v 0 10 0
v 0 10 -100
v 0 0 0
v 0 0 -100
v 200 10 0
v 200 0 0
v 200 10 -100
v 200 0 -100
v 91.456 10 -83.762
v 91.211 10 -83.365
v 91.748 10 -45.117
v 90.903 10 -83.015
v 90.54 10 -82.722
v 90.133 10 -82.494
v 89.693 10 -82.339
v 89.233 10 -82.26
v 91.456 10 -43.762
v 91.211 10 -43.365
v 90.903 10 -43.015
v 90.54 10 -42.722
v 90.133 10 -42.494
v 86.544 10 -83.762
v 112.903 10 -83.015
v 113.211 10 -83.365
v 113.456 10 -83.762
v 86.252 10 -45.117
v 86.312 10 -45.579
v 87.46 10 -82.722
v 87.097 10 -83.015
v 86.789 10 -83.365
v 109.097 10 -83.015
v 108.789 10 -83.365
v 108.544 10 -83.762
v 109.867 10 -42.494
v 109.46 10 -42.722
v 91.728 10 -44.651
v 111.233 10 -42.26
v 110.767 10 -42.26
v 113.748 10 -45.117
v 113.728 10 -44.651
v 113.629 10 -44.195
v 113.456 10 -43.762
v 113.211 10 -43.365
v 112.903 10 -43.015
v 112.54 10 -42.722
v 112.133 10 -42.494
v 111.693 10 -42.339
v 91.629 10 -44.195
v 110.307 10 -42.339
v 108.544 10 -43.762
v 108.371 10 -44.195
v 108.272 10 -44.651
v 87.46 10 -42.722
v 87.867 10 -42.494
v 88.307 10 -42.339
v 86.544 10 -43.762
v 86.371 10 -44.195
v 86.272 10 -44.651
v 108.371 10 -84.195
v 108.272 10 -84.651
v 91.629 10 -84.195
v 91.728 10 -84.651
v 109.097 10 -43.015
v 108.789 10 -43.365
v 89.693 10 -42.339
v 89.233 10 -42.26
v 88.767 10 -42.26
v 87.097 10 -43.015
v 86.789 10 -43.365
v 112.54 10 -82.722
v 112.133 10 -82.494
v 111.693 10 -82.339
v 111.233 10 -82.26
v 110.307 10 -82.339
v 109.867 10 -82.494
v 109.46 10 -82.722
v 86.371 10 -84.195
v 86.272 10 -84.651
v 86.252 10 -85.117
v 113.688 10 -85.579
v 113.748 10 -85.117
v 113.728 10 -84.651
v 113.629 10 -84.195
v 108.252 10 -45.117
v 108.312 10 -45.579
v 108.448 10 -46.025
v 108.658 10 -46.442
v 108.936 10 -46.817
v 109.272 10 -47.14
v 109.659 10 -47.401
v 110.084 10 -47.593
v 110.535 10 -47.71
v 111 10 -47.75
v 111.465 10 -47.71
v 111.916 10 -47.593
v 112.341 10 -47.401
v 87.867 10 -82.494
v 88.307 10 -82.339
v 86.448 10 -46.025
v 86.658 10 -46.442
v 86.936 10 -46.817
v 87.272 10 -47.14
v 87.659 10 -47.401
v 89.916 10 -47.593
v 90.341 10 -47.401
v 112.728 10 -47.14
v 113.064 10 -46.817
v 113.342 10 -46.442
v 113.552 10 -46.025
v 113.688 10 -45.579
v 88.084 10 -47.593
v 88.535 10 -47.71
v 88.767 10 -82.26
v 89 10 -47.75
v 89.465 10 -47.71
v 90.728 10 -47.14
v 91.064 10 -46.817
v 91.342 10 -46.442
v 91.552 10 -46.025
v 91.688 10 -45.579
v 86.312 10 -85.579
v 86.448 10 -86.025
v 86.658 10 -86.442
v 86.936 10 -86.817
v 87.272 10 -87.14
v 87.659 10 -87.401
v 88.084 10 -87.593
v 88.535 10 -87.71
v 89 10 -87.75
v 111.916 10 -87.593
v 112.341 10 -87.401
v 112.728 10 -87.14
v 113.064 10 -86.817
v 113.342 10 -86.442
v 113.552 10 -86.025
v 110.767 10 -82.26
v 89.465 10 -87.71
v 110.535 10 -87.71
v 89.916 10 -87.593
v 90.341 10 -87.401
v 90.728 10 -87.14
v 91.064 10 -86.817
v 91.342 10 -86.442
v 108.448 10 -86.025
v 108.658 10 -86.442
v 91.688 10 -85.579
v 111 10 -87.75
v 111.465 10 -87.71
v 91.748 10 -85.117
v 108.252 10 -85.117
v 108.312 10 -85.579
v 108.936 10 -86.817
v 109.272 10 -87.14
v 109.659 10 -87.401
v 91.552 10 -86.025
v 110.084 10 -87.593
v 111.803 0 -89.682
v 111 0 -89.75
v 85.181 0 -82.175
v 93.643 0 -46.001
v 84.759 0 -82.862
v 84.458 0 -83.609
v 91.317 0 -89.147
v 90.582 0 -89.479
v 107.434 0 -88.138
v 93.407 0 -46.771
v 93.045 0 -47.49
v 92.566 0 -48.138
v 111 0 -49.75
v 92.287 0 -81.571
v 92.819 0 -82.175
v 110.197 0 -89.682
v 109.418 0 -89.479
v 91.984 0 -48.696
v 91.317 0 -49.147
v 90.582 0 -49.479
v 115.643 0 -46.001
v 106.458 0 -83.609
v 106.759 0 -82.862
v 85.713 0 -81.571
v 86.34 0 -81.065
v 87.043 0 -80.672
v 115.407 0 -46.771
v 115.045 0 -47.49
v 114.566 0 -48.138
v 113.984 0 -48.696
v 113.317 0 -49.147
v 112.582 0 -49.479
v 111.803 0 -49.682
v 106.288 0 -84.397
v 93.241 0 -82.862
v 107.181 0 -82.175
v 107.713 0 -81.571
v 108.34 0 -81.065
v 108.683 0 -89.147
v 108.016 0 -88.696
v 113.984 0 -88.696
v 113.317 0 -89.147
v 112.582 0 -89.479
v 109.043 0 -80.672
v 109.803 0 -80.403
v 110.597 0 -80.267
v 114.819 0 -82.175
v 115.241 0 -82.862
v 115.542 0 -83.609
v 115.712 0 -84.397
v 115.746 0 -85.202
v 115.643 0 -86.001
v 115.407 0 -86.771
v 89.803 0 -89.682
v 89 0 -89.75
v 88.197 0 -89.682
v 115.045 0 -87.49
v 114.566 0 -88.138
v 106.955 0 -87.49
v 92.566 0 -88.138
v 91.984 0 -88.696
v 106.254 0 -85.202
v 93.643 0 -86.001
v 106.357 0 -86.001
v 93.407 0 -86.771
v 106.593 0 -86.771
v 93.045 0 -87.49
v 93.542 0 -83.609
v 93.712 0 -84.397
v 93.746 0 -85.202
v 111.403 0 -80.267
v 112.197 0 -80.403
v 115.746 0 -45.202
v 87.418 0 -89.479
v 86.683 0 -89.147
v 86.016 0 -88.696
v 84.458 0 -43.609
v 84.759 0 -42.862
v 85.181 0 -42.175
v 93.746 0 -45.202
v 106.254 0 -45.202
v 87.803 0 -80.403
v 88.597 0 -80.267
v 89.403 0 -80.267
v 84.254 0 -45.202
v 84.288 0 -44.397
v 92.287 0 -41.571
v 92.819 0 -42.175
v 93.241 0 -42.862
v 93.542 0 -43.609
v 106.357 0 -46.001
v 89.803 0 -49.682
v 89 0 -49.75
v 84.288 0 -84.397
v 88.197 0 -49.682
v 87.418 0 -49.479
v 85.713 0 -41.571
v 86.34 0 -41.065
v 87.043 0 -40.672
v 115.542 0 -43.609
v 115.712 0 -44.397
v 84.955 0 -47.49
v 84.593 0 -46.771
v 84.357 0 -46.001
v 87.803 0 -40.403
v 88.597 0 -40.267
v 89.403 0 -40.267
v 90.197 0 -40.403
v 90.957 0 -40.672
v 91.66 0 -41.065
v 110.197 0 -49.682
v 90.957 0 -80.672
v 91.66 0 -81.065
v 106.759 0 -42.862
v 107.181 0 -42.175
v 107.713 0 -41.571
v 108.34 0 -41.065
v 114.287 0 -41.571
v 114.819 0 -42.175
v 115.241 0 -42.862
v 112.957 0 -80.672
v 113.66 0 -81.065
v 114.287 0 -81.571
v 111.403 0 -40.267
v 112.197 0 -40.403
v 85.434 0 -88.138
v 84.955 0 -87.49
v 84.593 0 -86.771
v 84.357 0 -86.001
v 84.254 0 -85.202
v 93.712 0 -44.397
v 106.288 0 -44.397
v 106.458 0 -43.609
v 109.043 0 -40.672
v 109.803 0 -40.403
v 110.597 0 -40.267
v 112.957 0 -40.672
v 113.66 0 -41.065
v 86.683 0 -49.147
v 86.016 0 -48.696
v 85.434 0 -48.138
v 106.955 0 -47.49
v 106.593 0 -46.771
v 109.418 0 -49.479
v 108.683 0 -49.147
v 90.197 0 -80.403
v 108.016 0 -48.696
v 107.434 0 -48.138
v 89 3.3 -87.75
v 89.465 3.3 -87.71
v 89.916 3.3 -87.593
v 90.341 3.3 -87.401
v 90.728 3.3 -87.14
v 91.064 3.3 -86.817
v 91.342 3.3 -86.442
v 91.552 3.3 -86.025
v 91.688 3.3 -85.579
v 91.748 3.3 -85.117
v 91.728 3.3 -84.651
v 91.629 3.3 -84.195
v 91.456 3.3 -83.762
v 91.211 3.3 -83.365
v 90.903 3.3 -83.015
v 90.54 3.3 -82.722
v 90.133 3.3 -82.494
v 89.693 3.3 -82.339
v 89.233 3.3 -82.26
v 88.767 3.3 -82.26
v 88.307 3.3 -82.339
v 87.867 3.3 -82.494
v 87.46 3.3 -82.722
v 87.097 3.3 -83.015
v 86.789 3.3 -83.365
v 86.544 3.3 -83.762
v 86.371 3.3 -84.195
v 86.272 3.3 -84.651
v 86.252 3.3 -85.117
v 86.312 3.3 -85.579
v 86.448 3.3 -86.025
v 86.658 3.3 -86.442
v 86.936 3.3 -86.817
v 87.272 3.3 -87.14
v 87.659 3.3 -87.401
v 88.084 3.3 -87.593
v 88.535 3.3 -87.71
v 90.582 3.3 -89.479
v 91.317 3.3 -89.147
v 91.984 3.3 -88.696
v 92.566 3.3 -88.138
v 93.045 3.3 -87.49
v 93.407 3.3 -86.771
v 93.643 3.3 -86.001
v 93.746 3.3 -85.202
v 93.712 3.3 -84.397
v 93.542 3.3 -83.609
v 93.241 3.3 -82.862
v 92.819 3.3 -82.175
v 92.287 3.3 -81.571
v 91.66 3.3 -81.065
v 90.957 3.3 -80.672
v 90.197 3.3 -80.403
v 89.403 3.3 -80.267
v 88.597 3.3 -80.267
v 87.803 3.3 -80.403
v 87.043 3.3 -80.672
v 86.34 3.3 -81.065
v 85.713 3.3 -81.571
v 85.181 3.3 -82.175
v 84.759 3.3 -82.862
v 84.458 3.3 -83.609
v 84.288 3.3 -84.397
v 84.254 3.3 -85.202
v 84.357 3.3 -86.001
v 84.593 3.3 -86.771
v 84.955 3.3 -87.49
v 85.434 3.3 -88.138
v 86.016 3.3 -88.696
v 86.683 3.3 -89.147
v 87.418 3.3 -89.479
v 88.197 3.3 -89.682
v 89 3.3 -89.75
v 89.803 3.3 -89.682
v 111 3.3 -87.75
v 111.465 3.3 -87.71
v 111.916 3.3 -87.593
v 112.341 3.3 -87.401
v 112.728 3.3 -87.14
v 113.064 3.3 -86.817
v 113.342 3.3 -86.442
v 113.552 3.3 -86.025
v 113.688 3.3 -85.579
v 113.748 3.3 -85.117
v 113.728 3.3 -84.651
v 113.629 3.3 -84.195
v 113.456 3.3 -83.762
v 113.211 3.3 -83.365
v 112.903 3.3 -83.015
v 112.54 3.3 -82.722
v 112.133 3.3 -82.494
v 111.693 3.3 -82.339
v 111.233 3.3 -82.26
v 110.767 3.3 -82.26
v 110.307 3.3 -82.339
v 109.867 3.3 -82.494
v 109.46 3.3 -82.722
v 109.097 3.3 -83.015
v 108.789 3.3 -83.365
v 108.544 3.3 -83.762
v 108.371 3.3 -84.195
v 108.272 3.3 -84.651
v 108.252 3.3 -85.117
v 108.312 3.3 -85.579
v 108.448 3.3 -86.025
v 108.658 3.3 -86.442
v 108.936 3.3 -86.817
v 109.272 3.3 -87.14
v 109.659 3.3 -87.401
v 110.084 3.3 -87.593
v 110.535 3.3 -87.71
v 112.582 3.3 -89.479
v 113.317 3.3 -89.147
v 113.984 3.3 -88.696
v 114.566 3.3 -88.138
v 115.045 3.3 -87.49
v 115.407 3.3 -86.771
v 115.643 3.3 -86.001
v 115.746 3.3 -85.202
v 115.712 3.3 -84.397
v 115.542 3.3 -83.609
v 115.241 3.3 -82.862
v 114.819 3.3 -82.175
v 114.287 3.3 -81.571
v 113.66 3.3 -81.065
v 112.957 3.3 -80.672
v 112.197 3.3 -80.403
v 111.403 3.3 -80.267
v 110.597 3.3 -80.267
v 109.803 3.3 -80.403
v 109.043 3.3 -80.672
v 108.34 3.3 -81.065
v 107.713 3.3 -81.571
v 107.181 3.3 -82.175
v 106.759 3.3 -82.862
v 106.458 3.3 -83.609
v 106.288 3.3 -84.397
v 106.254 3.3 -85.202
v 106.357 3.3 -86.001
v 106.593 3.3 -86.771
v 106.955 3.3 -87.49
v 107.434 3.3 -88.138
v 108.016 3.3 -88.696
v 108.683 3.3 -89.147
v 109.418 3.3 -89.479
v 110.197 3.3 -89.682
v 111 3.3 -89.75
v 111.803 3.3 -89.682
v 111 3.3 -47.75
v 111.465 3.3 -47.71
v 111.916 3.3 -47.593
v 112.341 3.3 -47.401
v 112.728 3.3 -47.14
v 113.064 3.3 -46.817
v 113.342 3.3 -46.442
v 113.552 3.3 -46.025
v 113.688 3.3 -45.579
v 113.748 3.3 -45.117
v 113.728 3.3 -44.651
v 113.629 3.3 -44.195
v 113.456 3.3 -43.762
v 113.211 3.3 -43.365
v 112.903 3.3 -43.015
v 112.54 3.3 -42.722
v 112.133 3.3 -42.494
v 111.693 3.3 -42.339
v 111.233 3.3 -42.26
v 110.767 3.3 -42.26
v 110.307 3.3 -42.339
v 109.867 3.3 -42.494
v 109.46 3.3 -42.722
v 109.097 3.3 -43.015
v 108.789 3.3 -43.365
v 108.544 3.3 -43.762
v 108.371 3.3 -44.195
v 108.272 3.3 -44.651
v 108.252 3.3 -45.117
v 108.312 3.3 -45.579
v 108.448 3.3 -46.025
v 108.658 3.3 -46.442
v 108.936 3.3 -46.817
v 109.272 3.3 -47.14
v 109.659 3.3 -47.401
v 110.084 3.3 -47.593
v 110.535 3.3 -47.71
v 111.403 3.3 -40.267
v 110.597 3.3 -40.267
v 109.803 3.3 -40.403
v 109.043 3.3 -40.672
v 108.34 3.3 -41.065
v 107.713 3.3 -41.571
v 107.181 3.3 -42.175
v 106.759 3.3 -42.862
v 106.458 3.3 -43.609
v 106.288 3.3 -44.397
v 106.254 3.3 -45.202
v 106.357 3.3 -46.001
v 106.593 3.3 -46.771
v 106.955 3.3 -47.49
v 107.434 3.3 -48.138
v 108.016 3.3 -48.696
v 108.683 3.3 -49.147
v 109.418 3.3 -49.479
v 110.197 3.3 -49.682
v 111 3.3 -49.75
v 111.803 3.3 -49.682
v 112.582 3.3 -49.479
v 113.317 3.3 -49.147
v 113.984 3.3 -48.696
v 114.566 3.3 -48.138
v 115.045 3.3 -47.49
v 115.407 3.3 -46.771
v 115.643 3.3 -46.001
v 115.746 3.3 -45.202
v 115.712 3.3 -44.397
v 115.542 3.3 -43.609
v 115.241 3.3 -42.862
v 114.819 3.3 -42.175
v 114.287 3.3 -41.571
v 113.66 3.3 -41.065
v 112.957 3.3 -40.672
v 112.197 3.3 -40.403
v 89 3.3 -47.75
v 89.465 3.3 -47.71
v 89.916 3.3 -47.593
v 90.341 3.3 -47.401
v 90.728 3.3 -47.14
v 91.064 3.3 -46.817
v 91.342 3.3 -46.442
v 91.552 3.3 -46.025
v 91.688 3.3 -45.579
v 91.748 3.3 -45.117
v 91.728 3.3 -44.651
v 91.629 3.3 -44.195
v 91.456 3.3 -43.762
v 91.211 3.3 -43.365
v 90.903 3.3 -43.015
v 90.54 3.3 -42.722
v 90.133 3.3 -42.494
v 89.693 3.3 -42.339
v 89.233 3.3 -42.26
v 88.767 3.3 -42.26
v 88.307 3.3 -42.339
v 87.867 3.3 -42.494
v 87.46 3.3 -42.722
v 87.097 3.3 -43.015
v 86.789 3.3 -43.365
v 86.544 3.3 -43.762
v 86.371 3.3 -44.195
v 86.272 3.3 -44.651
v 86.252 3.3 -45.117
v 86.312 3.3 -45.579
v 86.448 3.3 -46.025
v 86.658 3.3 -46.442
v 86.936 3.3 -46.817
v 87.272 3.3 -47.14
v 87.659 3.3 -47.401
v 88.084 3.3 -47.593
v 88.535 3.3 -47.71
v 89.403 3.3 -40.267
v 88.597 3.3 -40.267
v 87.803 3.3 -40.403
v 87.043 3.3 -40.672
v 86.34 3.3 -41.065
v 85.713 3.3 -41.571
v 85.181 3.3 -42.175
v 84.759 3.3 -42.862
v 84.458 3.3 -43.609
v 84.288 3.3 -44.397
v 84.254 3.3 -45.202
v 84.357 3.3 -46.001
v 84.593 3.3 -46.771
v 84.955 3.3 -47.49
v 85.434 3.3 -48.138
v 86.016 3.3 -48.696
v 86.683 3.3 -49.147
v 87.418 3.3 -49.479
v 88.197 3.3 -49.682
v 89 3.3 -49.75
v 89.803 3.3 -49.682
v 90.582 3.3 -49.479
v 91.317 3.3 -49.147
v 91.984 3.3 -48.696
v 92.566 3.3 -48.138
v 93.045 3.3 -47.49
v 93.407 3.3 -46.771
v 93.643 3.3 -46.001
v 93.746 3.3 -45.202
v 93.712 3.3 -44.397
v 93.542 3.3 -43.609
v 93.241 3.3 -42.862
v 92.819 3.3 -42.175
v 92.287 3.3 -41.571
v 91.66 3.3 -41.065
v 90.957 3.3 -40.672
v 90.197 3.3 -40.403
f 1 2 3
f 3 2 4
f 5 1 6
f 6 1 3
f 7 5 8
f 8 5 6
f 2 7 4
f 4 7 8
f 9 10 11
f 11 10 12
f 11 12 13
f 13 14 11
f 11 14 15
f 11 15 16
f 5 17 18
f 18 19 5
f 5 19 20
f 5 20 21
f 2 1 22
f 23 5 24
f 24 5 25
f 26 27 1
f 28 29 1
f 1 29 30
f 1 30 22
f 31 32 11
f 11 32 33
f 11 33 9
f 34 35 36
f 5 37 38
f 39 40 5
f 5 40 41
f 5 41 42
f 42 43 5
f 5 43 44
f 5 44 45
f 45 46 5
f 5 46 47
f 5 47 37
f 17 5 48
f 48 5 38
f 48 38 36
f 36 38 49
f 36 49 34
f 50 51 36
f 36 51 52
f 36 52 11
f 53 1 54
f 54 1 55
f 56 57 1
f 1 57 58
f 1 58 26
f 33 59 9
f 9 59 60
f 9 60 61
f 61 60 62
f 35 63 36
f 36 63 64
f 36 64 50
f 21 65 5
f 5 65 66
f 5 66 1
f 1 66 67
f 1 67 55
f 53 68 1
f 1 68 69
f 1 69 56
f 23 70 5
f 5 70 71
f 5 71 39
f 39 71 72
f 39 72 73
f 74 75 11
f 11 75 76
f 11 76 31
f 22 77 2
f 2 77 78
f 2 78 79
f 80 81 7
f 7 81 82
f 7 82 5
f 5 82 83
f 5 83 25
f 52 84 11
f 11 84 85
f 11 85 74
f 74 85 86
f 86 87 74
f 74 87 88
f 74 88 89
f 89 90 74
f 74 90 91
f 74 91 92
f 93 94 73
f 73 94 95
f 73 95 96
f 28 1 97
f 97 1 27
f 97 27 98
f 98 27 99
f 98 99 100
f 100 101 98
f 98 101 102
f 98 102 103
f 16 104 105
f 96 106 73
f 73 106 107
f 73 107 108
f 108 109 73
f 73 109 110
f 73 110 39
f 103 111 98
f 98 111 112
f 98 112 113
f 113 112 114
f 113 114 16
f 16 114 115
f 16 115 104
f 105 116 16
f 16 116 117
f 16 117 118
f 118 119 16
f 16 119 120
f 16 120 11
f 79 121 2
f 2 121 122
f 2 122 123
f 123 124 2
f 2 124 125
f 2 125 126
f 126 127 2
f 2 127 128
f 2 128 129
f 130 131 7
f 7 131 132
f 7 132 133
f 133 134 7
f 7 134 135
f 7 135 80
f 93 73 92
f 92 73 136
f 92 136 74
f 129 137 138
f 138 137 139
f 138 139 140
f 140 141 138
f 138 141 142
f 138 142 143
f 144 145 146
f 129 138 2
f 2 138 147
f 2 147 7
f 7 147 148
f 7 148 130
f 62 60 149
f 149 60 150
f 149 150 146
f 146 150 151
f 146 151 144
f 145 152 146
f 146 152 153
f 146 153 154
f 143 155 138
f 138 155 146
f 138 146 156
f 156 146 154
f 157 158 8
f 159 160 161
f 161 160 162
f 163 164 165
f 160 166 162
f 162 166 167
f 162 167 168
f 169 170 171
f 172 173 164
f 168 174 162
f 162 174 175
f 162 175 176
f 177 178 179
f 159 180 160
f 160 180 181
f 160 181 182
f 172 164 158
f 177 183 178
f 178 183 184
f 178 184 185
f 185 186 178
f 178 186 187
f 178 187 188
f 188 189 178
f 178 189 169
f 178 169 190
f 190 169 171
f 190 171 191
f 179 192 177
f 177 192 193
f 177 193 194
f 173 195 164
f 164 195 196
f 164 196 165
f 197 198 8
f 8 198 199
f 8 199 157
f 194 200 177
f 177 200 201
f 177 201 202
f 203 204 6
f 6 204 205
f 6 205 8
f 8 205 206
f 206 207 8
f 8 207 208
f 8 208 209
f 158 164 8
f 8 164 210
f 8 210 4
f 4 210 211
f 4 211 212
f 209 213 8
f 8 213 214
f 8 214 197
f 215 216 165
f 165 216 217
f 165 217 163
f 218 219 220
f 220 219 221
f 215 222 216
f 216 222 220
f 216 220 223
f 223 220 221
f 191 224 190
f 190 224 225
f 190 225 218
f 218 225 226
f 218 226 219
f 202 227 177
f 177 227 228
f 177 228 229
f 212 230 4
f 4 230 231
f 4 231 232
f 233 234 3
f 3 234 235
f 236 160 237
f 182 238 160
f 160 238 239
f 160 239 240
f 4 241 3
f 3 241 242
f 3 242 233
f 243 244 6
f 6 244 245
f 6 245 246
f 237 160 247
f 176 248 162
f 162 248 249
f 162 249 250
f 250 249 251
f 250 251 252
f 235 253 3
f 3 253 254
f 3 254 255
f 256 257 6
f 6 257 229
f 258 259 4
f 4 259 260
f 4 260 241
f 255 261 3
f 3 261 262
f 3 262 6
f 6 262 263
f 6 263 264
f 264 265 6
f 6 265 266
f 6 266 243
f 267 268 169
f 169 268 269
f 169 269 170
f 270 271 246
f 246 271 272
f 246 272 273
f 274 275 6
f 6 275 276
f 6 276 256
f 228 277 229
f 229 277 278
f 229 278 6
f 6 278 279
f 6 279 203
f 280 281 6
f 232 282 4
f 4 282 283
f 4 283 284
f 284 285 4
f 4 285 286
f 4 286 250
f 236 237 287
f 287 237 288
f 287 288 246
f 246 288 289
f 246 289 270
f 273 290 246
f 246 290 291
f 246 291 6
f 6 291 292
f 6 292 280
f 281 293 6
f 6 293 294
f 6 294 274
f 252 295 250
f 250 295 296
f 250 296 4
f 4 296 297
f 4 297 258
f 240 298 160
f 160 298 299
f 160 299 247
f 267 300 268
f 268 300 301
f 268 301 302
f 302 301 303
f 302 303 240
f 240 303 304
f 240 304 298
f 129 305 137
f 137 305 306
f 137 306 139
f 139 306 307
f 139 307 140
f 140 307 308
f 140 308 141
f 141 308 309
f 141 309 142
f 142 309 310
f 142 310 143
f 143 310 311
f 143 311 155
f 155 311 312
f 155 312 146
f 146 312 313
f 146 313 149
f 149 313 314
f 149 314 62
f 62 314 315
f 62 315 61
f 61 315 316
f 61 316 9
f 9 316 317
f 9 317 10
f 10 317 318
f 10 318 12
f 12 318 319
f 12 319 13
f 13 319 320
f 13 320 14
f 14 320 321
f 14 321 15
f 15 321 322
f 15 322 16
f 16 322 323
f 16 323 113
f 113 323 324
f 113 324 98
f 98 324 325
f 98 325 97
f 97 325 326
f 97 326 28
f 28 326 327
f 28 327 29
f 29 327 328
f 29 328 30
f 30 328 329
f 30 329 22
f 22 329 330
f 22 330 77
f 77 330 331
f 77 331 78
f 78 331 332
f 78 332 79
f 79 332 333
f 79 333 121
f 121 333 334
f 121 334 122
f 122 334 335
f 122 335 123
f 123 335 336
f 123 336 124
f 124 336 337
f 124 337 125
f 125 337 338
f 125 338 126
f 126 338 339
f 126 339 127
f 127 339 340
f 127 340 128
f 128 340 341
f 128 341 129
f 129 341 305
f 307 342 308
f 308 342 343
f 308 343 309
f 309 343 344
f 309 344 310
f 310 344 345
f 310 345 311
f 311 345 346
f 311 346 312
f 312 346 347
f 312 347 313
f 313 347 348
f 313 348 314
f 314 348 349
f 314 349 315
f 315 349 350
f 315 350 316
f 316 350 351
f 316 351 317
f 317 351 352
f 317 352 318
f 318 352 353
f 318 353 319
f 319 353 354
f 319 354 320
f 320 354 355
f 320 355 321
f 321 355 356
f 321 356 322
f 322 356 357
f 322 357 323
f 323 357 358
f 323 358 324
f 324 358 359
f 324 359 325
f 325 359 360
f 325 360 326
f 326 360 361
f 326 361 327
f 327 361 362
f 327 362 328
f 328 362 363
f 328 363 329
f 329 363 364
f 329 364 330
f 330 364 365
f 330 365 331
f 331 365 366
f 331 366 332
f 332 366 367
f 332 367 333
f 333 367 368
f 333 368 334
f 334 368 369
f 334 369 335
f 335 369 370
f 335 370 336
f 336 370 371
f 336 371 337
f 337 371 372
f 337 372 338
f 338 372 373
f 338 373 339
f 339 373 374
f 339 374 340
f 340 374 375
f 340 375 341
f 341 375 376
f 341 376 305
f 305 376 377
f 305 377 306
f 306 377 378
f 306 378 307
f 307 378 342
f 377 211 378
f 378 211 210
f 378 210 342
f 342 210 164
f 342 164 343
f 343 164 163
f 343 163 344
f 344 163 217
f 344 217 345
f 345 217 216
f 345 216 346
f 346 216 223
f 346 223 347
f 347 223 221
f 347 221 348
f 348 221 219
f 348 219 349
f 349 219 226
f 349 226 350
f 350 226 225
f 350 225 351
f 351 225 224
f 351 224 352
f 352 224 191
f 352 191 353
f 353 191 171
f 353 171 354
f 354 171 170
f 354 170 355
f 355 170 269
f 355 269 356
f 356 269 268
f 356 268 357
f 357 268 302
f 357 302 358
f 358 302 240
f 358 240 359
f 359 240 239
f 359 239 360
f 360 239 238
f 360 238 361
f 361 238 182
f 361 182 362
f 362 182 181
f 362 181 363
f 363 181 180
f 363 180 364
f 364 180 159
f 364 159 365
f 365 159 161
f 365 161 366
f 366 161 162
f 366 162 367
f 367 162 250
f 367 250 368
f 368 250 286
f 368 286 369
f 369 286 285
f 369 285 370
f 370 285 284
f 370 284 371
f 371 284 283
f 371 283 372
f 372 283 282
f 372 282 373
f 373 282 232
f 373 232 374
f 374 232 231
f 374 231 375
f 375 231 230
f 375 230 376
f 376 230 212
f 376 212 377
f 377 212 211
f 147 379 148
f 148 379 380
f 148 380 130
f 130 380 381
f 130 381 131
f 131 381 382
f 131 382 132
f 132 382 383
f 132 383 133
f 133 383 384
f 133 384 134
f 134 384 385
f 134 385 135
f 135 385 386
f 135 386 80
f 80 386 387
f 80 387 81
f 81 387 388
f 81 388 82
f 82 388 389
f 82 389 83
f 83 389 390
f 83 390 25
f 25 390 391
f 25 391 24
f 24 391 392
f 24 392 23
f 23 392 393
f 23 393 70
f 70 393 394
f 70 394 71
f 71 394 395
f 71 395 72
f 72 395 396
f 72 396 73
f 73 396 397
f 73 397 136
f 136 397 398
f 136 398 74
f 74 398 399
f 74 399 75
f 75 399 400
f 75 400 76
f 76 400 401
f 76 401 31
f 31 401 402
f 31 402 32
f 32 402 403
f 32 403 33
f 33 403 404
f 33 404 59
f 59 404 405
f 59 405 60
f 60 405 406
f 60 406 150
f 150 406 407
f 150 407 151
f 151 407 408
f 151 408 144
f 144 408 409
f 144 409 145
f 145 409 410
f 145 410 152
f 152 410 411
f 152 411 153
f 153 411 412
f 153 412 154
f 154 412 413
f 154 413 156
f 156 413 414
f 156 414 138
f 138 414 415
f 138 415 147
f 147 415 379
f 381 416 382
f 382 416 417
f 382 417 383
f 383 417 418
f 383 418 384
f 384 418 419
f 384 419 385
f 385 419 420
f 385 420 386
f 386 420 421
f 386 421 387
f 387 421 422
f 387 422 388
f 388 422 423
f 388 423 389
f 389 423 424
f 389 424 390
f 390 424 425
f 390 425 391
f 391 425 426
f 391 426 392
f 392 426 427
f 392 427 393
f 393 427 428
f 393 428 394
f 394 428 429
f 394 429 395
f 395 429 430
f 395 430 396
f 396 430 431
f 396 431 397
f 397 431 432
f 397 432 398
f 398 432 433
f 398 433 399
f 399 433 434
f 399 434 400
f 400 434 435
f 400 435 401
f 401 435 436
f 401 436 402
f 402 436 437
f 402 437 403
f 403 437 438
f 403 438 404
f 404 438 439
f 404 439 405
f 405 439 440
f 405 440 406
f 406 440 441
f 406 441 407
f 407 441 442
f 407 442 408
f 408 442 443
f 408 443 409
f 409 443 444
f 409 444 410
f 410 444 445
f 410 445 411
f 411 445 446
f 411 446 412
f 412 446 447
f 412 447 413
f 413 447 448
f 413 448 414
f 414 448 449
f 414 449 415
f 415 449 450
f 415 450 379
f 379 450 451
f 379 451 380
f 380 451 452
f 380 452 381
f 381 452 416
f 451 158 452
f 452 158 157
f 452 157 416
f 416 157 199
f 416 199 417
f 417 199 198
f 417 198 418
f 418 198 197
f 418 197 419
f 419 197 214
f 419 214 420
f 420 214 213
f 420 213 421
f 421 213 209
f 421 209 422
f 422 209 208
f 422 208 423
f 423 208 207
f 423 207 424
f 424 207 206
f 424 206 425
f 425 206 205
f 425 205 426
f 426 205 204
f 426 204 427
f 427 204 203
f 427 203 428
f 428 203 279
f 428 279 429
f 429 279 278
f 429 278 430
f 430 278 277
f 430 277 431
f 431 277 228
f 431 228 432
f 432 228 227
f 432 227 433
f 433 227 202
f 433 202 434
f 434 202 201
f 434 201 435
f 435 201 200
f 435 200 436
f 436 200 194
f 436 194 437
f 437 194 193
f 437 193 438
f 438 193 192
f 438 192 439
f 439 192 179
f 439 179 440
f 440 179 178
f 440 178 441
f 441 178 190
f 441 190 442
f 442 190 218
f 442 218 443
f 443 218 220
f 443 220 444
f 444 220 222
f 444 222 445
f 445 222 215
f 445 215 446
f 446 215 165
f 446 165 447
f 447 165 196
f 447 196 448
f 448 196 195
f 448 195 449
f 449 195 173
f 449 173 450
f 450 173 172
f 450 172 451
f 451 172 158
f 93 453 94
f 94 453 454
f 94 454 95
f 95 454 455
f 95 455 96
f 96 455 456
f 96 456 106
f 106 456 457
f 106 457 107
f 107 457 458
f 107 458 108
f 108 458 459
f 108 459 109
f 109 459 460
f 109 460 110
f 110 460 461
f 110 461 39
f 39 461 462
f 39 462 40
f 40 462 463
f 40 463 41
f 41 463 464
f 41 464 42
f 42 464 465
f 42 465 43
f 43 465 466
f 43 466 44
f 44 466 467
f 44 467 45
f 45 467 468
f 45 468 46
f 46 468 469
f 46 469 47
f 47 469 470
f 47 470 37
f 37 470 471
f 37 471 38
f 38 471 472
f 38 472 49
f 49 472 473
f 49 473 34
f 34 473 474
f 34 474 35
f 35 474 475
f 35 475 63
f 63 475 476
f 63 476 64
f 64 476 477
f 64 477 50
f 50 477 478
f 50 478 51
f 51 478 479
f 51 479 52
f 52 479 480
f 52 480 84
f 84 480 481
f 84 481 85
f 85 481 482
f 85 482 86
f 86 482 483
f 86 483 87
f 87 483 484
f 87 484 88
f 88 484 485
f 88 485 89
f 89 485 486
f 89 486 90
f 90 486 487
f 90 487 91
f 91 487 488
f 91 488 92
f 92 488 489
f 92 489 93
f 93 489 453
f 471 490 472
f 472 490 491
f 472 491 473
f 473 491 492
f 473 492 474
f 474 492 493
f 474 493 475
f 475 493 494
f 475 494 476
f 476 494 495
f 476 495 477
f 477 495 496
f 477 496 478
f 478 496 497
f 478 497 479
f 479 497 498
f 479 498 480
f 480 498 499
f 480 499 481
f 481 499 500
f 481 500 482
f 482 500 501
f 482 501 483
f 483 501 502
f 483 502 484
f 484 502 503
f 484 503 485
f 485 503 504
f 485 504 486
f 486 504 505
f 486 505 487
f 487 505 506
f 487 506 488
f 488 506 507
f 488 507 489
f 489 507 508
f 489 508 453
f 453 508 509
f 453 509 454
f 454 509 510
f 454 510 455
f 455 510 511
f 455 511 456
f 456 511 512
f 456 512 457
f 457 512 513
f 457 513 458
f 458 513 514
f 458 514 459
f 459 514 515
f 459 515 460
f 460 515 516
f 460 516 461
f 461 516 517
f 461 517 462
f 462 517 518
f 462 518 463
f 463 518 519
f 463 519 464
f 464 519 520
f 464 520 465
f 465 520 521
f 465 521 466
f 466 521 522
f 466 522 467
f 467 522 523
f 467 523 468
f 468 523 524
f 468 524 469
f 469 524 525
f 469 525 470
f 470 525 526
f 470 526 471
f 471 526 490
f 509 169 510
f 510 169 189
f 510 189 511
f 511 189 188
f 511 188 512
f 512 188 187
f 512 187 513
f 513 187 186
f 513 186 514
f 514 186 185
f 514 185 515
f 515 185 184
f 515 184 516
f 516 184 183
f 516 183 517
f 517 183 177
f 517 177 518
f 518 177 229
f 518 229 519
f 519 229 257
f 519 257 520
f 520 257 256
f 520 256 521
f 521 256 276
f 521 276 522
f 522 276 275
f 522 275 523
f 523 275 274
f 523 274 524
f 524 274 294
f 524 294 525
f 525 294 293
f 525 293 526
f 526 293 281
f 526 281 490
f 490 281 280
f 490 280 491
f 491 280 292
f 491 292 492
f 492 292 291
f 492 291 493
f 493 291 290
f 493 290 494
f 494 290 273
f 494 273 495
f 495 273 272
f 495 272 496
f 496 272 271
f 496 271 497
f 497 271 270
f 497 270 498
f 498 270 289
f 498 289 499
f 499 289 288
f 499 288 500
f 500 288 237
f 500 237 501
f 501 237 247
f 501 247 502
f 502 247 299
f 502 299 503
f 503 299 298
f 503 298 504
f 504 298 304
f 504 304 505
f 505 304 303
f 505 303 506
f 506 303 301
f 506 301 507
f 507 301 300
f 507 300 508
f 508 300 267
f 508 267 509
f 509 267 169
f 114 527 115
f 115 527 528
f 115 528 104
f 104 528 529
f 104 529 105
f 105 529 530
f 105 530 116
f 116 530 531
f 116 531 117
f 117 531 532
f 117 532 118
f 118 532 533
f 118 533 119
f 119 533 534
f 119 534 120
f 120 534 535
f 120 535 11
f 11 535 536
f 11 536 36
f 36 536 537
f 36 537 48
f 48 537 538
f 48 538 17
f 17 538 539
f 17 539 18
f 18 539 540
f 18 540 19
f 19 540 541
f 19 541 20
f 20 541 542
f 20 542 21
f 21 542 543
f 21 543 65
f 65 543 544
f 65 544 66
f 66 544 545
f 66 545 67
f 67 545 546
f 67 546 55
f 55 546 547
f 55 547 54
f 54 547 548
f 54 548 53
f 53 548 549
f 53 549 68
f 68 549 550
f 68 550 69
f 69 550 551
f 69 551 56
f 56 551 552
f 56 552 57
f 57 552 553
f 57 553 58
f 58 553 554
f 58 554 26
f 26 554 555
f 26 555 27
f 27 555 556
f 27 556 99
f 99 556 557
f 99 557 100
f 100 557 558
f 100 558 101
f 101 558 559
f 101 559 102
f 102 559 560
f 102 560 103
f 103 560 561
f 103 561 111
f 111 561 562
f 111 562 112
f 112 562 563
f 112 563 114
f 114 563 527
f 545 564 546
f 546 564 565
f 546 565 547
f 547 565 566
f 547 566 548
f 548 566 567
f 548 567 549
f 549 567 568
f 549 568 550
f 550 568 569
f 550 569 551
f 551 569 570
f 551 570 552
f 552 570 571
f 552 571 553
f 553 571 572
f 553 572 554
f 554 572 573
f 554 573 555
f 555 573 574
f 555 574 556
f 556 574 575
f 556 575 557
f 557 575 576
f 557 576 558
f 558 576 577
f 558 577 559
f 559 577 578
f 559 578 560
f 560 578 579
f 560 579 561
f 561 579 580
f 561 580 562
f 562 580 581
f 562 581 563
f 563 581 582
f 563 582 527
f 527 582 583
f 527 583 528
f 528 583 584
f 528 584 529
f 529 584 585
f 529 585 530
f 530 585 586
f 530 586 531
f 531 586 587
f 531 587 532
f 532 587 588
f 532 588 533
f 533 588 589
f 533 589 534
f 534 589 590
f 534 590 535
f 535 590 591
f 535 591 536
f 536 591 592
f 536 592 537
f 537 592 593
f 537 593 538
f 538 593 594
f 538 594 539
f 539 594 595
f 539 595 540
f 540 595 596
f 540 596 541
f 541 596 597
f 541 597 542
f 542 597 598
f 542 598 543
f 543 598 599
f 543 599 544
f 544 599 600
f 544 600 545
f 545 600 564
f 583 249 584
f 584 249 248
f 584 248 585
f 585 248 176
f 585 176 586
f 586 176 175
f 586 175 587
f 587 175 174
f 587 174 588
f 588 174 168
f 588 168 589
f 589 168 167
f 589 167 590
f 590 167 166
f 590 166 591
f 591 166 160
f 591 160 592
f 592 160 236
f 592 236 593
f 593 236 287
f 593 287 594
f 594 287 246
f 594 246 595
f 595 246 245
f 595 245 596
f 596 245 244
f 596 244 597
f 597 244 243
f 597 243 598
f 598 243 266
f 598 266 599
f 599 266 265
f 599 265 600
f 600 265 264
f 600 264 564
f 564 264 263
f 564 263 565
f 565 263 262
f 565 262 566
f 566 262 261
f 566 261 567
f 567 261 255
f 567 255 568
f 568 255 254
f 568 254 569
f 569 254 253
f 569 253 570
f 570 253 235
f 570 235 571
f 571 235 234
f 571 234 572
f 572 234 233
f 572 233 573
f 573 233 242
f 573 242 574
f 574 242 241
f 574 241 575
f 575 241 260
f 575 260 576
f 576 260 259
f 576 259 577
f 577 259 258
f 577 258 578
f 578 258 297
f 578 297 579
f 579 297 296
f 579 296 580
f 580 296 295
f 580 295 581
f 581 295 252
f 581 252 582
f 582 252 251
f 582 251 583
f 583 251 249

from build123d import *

# Parameters (mm, degrees)
SKETCH_1_W                   = 200
SKETCH_1_H                   = 100
EXTRUDE_1_DEPTH              = 10
HOLE_WIZARD_M5_2_D           = 5.5
HOLE_WIZARD_M5_2_CBORE_D     = 9.5
HOLE_WIZARD_M5_2_CBORE_DEPTH = 3.3


with BuildPart() as part:
    # 스케치1 → 보스-돌출1 (new body)
    with BuildSketch(Plane(origin=(0, 0, 0), x_dir=(1, 0, 0), z_dir=(0, 1, 0))):
        with Locations((100, 50)):
            Rectangle(SKETCH_1_W, SKETCH_1_H)
    extrude(amount=EXTRUDE_1_DEPTH)

    # M5 치즈머리 홈붙이 머리용 카운터보어2 (through all)
    with Locations(Plane(origin=(89, 0, -45), x_dir=(0, 0, -1), z_dir=(0, -1, 0))):
        with Locations((0, 0), (0, 22), (40, 22), (40, 0)):
            CounterBoreHole(HOLE_WIZARD_M5_2_D / 2, HOLE_WIZARD_M5_2_CBORE_D / 2, HOLE_WIZARD_M5_2_CBORE_DEPTH)


solid = part.part
